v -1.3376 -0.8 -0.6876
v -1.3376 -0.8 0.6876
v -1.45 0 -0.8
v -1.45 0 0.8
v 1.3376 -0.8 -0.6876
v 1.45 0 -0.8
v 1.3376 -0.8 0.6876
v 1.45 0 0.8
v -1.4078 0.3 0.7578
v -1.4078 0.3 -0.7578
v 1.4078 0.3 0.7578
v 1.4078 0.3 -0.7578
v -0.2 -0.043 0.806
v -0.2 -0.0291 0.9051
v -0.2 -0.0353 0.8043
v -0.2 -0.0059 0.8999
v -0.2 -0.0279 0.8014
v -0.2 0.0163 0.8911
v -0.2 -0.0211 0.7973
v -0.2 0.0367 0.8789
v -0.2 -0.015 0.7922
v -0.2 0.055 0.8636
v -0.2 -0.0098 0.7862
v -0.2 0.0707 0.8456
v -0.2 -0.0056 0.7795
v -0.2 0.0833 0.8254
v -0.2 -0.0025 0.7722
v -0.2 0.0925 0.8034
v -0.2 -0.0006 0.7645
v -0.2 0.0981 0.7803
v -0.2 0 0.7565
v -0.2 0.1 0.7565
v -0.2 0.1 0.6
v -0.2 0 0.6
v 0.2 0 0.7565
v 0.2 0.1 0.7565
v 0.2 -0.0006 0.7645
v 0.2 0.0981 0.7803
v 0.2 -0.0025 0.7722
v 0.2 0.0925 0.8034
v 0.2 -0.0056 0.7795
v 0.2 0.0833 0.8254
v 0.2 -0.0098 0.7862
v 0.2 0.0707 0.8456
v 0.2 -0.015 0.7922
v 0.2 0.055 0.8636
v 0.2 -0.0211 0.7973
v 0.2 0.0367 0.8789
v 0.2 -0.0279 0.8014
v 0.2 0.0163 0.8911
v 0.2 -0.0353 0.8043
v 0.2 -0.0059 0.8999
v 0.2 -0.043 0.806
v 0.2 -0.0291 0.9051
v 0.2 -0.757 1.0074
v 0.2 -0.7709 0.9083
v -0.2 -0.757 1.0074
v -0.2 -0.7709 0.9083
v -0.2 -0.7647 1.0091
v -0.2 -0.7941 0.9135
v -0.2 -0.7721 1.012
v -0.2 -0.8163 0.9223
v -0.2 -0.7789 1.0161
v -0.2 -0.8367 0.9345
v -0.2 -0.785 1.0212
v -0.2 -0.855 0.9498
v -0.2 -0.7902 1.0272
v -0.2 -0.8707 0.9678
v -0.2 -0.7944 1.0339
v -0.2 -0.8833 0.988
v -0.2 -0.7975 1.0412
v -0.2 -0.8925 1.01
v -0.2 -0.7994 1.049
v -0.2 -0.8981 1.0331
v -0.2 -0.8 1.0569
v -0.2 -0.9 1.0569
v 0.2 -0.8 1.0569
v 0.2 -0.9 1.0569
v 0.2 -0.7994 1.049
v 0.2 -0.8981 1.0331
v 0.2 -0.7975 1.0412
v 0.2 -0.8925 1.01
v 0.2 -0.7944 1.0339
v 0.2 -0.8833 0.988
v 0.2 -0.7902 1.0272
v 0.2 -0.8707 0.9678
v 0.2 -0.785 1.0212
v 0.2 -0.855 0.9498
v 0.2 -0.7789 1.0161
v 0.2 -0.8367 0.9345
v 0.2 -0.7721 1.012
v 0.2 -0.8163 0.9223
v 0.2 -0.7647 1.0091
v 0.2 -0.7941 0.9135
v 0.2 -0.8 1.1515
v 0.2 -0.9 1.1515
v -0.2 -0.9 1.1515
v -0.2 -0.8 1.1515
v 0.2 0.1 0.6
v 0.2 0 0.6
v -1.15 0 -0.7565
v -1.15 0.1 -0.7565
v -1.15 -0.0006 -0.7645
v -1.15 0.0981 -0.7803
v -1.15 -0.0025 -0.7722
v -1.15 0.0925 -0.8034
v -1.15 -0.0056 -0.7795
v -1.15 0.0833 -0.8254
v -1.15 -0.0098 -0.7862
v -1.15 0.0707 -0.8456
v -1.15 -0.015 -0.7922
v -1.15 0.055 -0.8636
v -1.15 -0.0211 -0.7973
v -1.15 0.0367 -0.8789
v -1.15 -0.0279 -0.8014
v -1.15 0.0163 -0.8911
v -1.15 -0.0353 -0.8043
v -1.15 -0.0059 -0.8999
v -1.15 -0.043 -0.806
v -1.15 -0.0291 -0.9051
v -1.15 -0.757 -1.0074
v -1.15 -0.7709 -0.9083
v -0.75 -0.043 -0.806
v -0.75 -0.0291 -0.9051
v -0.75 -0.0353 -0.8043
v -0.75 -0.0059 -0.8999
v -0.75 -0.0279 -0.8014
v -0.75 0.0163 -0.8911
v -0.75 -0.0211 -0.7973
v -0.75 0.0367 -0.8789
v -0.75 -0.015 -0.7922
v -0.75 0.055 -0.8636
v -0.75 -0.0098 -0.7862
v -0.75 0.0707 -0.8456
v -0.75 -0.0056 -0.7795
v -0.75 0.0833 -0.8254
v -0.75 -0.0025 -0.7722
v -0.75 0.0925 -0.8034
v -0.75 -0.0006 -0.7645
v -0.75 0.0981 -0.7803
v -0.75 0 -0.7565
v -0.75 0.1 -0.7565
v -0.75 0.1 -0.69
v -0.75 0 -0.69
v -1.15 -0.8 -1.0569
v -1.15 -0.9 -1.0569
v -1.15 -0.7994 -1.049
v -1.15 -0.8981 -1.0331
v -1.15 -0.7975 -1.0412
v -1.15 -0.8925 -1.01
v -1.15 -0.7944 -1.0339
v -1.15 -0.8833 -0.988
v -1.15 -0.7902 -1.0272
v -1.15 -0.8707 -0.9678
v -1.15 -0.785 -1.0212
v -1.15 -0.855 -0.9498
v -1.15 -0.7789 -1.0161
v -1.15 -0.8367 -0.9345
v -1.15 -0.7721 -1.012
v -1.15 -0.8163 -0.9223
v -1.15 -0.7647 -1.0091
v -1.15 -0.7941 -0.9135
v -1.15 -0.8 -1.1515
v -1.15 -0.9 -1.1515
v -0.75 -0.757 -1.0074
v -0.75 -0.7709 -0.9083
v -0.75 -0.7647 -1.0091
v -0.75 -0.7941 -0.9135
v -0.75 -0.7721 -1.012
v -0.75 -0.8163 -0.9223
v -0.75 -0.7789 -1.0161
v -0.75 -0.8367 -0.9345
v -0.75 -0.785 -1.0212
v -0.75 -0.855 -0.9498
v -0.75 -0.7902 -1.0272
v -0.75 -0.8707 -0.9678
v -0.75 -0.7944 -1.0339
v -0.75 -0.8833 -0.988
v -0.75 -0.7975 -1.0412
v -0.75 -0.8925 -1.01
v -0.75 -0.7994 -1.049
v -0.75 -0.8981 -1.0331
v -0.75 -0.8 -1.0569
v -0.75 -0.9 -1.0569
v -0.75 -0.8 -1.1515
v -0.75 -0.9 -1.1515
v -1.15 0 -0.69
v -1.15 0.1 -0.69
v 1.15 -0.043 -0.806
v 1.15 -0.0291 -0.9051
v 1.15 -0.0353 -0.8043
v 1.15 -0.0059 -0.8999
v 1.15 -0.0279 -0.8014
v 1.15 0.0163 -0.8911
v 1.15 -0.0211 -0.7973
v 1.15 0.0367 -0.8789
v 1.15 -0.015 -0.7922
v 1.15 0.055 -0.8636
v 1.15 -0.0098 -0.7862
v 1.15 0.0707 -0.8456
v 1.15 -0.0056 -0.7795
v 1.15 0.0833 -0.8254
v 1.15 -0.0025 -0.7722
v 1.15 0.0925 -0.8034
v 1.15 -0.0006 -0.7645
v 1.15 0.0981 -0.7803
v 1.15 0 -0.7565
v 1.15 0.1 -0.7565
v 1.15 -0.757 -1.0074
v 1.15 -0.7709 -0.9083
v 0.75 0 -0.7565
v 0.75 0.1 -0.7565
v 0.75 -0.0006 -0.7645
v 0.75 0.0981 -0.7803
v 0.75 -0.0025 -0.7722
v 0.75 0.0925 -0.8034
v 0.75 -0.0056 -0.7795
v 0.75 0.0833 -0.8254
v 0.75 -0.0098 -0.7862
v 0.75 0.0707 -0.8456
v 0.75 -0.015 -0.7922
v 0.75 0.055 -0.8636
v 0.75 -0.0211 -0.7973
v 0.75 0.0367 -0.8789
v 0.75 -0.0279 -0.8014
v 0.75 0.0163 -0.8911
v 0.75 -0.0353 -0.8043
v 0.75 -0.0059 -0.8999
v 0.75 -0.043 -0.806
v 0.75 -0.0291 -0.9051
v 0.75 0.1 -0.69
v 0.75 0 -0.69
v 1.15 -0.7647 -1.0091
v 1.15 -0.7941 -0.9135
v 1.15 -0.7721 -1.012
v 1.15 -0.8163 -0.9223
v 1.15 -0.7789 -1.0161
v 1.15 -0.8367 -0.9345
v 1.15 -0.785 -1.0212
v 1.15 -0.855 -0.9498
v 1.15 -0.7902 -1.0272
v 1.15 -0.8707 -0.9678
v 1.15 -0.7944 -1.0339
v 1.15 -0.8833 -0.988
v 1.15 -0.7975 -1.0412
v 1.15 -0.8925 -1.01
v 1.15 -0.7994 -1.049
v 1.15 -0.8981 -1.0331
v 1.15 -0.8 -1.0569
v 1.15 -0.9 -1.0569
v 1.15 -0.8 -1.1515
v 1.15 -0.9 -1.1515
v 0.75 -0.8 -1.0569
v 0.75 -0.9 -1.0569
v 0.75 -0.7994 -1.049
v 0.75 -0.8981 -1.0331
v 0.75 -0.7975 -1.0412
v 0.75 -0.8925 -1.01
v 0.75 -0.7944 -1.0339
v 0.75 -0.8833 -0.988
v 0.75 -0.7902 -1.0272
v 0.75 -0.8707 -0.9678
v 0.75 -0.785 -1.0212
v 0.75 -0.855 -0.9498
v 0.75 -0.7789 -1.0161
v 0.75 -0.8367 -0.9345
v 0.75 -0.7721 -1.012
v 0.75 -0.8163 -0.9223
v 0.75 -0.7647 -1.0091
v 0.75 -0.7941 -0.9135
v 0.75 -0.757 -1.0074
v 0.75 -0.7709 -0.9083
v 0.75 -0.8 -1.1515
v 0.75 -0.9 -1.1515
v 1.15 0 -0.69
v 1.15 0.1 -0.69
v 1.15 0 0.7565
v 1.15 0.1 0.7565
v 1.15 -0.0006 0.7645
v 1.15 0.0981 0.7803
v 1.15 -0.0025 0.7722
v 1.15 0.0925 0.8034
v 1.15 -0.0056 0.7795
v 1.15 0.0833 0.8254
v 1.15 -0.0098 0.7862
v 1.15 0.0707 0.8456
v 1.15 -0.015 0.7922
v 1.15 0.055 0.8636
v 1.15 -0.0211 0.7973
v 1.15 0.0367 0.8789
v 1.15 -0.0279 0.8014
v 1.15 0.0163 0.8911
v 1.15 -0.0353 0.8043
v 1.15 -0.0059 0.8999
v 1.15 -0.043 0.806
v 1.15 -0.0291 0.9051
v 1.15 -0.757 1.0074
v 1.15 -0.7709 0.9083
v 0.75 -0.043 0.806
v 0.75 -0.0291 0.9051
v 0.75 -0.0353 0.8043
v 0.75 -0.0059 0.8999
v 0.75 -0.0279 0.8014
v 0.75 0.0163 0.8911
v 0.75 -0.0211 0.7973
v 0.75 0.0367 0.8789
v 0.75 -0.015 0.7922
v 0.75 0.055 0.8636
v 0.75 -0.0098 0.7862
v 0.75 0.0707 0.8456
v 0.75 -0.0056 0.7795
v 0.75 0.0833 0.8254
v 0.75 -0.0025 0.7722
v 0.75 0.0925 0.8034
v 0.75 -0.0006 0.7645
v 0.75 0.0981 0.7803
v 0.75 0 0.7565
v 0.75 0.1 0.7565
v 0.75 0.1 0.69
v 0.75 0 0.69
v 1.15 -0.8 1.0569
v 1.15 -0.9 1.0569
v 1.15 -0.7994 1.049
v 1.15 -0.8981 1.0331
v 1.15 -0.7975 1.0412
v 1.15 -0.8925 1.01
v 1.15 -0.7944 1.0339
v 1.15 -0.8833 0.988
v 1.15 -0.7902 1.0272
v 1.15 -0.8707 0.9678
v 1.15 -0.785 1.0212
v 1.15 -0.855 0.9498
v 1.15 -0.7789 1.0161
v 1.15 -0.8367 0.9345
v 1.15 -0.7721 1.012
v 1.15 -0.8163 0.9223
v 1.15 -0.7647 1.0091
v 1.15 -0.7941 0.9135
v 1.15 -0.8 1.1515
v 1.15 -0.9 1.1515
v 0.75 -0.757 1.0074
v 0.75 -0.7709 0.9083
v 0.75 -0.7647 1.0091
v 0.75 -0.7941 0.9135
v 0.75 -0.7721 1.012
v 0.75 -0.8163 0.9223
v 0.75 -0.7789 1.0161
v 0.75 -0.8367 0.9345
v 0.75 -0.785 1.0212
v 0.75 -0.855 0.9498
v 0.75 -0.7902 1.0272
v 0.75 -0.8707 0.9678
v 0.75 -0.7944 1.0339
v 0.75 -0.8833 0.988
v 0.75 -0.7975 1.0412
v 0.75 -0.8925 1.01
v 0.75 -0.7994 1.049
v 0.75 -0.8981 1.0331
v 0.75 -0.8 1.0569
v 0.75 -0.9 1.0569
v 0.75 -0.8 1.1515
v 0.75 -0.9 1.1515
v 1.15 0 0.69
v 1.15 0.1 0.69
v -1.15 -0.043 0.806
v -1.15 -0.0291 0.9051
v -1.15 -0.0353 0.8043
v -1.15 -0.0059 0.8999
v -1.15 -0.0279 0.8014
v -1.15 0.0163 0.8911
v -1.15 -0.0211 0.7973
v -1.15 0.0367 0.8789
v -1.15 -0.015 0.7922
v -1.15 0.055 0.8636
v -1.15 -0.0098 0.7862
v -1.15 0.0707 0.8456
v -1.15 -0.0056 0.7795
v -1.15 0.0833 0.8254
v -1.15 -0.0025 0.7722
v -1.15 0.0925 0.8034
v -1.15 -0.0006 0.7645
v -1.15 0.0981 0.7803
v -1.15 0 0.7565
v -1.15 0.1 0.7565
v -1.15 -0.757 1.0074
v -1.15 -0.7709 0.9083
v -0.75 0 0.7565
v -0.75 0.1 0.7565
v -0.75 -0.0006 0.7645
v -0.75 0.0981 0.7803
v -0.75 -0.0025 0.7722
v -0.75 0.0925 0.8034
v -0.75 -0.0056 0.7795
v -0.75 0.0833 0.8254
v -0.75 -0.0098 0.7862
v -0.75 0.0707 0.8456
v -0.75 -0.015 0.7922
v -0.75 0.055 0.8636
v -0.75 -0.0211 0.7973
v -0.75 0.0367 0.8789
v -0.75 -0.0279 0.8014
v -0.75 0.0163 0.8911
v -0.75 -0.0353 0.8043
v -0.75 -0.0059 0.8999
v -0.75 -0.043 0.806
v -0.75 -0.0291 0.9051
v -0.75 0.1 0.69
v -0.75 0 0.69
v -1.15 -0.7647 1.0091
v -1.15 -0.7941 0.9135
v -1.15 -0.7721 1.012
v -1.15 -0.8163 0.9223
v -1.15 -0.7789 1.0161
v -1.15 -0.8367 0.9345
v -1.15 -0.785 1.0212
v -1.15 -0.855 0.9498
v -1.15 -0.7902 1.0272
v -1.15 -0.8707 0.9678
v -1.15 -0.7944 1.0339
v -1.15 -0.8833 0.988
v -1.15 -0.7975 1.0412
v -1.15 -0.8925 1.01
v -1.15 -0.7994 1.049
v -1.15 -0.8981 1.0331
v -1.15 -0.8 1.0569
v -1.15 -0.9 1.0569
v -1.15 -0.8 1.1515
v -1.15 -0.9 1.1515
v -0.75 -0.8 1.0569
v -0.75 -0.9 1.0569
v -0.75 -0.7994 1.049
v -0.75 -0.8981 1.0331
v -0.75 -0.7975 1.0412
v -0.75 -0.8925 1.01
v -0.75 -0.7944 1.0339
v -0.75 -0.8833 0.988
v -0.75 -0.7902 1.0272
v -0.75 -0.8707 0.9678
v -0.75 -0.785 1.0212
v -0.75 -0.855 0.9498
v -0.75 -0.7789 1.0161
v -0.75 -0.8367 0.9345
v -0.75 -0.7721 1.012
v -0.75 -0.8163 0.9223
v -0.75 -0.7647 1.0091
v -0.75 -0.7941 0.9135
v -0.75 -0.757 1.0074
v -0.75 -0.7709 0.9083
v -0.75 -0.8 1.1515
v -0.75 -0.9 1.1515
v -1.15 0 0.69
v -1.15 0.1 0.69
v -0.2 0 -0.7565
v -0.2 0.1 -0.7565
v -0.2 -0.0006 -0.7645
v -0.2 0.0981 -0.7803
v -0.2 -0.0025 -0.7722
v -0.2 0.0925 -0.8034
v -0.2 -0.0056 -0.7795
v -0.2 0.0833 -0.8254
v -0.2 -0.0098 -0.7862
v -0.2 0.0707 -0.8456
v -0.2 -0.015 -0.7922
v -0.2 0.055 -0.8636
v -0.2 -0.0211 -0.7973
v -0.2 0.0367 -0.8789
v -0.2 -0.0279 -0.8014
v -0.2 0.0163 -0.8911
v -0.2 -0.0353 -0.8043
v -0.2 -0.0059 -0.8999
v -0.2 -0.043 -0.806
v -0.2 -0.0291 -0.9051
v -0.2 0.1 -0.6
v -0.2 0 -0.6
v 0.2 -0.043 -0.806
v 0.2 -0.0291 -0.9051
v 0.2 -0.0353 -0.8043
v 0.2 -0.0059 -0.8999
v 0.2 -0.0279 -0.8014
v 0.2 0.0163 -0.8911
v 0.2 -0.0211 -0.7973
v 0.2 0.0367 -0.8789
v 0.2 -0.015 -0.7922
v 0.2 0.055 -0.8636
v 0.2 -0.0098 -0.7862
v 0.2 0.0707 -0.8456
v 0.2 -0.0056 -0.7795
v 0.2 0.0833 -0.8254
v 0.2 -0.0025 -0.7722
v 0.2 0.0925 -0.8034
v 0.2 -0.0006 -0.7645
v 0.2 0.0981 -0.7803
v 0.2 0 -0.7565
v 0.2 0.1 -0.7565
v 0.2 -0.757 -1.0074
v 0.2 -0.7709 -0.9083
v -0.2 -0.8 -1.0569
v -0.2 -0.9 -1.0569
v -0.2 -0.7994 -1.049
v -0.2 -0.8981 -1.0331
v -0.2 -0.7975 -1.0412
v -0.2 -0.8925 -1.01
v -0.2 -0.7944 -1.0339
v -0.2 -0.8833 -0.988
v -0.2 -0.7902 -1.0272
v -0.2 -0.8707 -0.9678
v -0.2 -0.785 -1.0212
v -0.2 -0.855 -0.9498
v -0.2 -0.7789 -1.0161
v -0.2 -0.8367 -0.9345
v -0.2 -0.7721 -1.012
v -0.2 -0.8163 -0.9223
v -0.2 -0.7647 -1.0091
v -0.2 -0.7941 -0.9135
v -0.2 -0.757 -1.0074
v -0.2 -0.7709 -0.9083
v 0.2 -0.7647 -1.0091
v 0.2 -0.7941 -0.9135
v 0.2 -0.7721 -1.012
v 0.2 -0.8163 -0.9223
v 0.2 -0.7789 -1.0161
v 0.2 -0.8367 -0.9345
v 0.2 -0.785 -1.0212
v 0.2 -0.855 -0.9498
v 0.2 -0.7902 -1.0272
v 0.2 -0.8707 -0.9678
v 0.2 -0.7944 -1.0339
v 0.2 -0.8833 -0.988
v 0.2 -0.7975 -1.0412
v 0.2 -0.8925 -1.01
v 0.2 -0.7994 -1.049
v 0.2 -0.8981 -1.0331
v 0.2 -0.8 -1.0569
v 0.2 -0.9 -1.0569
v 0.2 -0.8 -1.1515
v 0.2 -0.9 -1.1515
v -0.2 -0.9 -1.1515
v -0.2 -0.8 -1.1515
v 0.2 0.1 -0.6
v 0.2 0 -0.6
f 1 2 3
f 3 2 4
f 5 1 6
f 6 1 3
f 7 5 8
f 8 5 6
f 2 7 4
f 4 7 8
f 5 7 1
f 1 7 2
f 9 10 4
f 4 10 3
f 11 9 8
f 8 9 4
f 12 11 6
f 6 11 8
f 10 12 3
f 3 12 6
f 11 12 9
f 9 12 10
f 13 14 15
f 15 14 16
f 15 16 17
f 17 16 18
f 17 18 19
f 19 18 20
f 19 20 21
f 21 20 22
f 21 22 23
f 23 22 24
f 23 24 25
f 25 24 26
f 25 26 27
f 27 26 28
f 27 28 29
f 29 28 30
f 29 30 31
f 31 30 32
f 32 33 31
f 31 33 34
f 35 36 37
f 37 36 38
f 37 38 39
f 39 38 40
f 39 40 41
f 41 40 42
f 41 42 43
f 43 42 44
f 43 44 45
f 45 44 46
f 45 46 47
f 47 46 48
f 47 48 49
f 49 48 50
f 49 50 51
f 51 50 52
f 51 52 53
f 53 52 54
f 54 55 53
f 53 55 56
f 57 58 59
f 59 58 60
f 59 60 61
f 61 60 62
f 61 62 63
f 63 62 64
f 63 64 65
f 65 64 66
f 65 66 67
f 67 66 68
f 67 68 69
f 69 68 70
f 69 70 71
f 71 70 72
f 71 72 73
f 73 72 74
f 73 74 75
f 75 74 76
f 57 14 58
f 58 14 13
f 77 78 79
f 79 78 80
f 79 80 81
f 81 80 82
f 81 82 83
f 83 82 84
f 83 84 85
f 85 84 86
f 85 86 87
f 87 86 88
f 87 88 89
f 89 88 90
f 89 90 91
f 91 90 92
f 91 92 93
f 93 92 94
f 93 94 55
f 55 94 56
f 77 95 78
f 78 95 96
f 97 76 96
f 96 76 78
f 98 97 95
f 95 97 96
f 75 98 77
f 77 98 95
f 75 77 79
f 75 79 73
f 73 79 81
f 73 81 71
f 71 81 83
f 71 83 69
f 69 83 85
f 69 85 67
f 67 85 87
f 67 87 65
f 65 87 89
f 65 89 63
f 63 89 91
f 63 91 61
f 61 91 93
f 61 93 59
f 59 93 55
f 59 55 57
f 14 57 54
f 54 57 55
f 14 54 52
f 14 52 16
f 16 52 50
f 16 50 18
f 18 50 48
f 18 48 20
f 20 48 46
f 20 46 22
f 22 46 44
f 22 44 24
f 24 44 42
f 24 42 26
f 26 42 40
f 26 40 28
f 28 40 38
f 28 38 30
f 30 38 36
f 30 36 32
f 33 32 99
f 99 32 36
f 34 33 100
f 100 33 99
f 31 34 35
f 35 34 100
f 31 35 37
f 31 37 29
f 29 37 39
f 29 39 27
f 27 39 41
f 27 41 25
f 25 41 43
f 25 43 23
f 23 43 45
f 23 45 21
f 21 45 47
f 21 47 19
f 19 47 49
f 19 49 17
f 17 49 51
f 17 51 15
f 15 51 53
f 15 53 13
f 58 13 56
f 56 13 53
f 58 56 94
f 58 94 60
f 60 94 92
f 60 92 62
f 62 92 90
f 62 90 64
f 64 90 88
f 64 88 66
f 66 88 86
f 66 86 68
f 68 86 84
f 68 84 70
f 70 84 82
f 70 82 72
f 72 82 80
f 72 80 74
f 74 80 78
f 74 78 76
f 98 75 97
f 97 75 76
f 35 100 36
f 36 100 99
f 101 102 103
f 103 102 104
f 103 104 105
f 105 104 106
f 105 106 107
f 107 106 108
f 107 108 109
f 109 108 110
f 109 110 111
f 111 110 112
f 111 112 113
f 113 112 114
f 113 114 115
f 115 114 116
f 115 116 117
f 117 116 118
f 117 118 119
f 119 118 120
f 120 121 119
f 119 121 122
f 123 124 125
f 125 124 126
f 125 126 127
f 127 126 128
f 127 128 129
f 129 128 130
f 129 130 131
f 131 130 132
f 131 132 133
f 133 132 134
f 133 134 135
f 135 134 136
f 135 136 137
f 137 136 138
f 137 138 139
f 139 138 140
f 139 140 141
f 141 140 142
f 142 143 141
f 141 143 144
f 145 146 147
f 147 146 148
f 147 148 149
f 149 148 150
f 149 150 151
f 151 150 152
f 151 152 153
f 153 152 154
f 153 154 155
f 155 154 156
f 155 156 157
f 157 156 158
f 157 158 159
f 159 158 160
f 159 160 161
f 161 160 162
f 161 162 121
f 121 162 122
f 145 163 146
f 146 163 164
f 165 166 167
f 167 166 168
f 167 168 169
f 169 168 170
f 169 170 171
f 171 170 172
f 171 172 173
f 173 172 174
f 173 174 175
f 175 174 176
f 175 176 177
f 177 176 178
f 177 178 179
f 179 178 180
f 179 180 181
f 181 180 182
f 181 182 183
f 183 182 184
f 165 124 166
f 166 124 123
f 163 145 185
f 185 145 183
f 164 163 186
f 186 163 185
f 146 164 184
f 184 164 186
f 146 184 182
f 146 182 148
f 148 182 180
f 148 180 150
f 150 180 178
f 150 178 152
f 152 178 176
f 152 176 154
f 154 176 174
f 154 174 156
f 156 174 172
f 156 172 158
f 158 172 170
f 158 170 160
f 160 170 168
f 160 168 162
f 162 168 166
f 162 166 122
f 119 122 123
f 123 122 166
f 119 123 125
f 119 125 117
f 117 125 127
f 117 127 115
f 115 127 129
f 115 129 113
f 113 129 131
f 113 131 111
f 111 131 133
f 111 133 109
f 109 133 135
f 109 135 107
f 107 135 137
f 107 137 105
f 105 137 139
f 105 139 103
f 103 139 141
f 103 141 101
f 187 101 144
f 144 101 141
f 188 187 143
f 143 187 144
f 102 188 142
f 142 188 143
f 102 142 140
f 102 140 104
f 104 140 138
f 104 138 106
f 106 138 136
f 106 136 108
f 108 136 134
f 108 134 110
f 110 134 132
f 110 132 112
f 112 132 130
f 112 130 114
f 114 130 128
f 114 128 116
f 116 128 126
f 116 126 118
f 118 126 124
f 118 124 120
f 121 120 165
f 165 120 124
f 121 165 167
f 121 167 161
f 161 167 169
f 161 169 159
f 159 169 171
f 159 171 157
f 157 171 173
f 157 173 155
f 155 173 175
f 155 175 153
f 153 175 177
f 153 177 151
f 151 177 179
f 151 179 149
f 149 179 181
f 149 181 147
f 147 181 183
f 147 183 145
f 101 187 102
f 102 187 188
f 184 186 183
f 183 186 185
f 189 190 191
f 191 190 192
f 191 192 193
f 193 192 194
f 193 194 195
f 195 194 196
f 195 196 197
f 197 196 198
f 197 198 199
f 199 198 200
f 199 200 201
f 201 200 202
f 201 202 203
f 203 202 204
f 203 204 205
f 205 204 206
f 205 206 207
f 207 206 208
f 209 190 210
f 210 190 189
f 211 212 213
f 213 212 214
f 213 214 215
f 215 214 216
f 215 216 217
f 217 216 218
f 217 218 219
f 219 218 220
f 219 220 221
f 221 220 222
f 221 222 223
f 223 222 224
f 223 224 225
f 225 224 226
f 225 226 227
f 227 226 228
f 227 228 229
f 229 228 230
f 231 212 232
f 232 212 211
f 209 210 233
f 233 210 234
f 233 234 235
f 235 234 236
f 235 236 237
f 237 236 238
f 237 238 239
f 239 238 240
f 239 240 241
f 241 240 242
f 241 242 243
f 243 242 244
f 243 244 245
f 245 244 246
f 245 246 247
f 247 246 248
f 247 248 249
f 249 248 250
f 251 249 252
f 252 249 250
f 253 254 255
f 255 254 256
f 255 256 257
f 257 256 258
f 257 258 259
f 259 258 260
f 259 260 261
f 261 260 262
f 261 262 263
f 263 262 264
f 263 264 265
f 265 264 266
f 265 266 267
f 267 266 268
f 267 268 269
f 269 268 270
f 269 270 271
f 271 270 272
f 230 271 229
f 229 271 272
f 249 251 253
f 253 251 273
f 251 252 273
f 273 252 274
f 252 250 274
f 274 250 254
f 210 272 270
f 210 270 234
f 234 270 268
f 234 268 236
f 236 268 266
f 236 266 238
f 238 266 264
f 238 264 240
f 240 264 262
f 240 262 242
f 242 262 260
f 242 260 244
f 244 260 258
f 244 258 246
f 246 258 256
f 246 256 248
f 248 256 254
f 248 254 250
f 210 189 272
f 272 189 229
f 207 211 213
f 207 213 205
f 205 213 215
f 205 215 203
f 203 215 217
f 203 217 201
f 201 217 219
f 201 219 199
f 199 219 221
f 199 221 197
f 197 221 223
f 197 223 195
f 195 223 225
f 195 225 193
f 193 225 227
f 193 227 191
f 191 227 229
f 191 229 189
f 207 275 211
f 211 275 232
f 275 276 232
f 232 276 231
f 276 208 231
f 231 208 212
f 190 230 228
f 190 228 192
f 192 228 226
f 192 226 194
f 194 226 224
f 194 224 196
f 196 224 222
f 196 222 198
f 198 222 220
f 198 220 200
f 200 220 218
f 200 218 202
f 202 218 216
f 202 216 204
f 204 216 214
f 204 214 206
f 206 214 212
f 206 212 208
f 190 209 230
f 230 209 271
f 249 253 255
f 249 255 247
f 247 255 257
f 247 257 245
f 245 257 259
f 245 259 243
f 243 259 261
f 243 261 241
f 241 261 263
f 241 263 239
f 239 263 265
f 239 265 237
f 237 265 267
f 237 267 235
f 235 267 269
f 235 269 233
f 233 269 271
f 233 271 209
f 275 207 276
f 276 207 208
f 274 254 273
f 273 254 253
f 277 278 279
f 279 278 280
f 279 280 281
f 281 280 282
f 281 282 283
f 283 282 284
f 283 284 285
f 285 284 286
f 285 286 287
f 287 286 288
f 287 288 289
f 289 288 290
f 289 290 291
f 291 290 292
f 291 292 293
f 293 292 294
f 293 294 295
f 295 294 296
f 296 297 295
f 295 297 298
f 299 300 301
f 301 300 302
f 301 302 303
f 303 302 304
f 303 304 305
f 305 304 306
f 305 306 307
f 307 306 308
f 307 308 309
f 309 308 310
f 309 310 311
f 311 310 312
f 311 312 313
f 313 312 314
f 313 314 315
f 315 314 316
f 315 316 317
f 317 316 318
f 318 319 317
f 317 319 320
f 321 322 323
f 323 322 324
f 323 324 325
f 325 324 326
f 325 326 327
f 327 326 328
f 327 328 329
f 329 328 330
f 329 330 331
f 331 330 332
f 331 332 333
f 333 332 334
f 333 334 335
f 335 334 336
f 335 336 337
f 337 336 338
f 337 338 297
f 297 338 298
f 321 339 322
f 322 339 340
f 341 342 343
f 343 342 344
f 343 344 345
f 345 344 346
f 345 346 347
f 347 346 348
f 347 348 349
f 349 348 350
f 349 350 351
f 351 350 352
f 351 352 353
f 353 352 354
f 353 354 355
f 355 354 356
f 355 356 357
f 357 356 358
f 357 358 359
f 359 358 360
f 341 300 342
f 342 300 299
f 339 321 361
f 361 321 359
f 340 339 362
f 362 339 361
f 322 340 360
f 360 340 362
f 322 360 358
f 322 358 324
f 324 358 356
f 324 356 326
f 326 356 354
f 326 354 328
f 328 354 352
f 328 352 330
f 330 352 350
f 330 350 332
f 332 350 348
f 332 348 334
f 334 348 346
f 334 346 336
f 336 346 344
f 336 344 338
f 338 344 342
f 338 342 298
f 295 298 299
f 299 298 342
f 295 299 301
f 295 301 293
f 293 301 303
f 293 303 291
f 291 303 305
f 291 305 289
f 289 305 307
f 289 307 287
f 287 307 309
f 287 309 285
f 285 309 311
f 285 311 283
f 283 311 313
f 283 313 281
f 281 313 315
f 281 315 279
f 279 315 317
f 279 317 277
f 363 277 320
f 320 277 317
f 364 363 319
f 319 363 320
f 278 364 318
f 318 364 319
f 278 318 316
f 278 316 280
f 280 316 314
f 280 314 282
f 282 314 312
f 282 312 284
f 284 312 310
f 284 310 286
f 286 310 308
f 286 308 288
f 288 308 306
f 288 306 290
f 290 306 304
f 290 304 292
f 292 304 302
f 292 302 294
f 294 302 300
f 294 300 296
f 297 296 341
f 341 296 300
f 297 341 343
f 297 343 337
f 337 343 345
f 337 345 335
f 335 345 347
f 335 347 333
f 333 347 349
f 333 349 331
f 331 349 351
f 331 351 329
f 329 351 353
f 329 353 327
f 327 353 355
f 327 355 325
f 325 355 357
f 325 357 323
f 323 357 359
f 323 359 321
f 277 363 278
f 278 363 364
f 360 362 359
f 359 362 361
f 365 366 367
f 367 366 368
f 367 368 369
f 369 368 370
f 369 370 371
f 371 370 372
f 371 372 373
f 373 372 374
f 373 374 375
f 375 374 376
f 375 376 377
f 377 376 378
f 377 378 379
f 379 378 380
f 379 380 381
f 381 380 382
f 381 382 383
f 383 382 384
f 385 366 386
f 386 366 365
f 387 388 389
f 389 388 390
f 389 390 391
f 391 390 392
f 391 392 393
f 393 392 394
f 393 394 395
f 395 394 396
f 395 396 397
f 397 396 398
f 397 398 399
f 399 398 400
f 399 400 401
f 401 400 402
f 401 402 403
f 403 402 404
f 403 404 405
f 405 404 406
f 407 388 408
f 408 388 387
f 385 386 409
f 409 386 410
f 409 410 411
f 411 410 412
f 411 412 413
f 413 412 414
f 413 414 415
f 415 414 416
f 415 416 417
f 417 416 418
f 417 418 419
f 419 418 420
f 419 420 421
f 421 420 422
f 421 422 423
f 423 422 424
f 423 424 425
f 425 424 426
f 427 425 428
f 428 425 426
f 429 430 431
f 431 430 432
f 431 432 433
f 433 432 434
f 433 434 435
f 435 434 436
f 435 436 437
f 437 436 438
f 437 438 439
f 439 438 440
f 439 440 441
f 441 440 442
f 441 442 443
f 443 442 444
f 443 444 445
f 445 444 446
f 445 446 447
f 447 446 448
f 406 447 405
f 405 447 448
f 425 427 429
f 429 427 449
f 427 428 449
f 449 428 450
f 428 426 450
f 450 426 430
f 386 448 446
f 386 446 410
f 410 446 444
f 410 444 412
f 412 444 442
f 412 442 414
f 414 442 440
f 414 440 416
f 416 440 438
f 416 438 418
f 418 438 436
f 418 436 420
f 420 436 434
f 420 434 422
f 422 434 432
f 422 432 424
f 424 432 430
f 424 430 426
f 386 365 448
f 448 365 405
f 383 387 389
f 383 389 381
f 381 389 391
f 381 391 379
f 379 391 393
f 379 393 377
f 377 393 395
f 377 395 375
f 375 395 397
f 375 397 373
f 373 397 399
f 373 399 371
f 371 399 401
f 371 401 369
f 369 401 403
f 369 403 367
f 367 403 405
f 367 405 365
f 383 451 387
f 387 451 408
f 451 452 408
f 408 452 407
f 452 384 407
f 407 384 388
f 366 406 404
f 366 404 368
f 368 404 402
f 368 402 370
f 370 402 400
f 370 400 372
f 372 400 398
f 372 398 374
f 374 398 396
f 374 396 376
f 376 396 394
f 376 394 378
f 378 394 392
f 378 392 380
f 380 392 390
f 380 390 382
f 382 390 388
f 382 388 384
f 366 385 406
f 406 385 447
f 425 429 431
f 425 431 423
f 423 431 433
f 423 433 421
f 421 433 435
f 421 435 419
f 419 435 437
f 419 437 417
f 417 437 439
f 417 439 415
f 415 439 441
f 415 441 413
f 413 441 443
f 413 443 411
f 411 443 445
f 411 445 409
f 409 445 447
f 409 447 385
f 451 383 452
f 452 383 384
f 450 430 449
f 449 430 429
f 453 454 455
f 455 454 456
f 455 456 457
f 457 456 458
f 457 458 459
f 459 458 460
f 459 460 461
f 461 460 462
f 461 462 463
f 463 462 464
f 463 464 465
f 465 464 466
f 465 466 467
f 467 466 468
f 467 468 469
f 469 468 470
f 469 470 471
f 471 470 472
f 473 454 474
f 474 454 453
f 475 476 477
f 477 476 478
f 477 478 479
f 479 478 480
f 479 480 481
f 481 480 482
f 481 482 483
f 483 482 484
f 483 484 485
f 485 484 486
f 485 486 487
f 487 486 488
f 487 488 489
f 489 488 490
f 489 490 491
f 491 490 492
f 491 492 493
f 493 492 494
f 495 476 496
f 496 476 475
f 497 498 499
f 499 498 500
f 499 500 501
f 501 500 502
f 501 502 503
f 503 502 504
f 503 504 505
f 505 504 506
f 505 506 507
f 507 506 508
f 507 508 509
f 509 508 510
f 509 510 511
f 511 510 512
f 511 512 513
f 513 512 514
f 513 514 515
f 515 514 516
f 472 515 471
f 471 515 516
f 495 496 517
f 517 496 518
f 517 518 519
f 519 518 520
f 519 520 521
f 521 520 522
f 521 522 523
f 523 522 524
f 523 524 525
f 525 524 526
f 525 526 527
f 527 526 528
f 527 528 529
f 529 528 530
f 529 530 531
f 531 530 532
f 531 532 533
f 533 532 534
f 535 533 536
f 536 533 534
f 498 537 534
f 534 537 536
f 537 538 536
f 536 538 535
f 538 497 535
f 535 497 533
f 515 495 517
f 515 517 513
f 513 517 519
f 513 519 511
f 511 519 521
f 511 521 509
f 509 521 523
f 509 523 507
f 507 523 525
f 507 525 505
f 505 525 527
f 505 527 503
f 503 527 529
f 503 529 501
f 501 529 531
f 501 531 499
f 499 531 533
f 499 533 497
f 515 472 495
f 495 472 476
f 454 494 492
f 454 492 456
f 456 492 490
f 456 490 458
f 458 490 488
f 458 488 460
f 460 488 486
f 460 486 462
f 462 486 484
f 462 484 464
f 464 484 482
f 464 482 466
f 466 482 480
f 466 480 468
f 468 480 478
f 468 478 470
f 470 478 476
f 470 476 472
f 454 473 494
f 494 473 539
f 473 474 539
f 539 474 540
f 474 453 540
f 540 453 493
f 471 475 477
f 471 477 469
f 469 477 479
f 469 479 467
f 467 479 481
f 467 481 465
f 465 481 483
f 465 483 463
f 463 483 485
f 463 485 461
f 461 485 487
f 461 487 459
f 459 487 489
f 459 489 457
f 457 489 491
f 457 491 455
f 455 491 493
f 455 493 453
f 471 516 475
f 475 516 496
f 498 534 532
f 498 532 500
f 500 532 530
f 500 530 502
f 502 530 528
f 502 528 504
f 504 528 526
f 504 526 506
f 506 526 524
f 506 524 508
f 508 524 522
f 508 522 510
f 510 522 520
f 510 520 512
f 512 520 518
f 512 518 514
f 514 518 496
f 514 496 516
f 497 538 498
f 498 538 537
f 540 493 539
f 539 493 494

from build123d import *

# Parameters (mm, degrees)
SKETCH1_W                     = 2.9
SKETCH1_H                     = 1.6
BOSS_EXTRUDE1_DEPTH           = 0.3
BOSS_EXTRUDE1_TAPER           = 8
BOSS_EXTRUDE1_OTHER_WAY_DEPTH = 0.8
BOSS_EXTRUDE1_OTHER_WAY_TAPER = 8
BASE_FLANGE2_DEPTH            = 0.2
BASE_FLANGE3_DEPTH            = 0.2


# Sheet-metal steps are written as plain solids
with BuildPart() as part:
    # Sketch1 → Boss-Extrude1 (new body)
    with BuildSketch(Plane(origin=(0, 0, 0), x_dir=(1, 0, 0), z_dir=(0, 1, 0))):
        Rectangle(SKETCH1_W, SKETCH1_H)
    extrude(amount=BOSS_EXTRUDE1_DEPTH, taper=BOSS_EXTRUDE1_TAPER)

    # Sketch1 → Boss-Extrude1 other way (add)
    with BuildSketch(Plane(origin=(0, 0, 0), x_dir=(1, 0, 0), z_dir=(0, 1, 0))):
        Rectangle(SKETCH1_W, SKETCH1_H)
    extrude(amount=-BOSS_EXTRUDE1_OTHER_WAY_DEPTH, taper=BOSS_EXTRUDE1_OTHER_WAY_TAPER)


with BuildPart() as body_2:
    # Sketch2 → Base-Flange2 (new, symmetric)
    with BuildSketch(Plane.ZY):
        with BuildLine():
            Line((0.6, 0), (0.756535663, 0))
            ThreePointArc((0.756535663, 0), (0.789338615, -0.012264521), (0.806049067, -0.043041345))
            Line((0.806049067, -0.043041345), (0.908339552, -0.770875965))
            ThreePointArc((0.908339552, -0.770875965), (0.958470908, -0.863206437), (1.056879762, -0.9))
            Line((1.056879762, -0.9), (1.151486751, -0.9))
            Line((1.151486751, -0.9), (1.151486751, -0.8))
            Line((1.151486751, -0.8), (1.056879762, -0.8))
            ThreePointArc((1.056879762, -0.8), (1.02407681, -0.787735479), (1.007366358, -0.756958655))
            Line((1.007366358, -0.756958655), (0.905075873, -0.029124035))
            ThreePointArc((0.905075873, -0.029124035), (0.854944517, 0.063206437), (0.756535663, 0.1))
            Line((0.756535663, 0.1), (0.6, 0.1))
            Line((0.6, 0.1), (0.6, 0))
        make_face()
    extrude(amount=BASE_FLANGE2_DEPTH, both=True)


with BuildPart() as body_3:
    # Sketch11 → Base-Flange3 (new, symmetric)
    with BuildSketch(Plane.ZY.offset(0.95)):
        with BuildLine():
            Line((-0.69, 0), (-0.756535663, 0))
            ThreePointArc((-0.756535663, 0), (-0.789338615, -0.012264521), (-0.806049067, -0.043041345))
            Line((-0.806049067, -0.043041345), (-0.908339552, -0.770875965))
            ThreePointArc((-0.908339552, -0.770875965), (-0.958470908, -0.863206437), (-1.056879762, -0.9))
            Line((-1.056879762, -0.9), (-1.151486751, -0.9))
            Line((-1.151486751, -0.9), (-1.151486751, -0.8))
            Line((-1.151486751, -0.8), (-1.056879762, -0.8))
            ThreePointArc((-1.056879762, -0.8), (-1.02407681, -0.787735479), (-1.007366358, -0.756958655))
            Line((-1.007366358, -0.756958655), (-0.905075873, -0.029124035))
            ThreePointArc((-0.905075873, -0.029124035), (-0.854944517, 0.063206437), (-0.756535663, 0.1))
            Line((-0.756535663, 0.1), (-0.69, 0.1))
            Line((-0.69, 0.1), (-0.69, 0))
        make_face()
    extrude(amount=BASE_FLANGE3_DEPTH, both=True)


with BuildPart() as body_4:
    # Mirror1: mirrored copy
    add(body_3.part.mirror(Plane.ZY))


with BuildPart() as body_5:
    # Mirror2: mirrored copy
    add(body_4.part.mirror(Plane.XY))


with BuildPart() as body_6:
    # Mirror2 2: mirrored copy
    add(body_3.part.mirror(Plane.XY))


with BuildPart() as body_7:
    # Mirror2 3: mirrored copy
    add(body_2.part.mirror(Plane.XY))


solid = Compound([part.part, body_2.part, body_3.part, body_4.part, body_5.part, body_6.part, body_7.part])
